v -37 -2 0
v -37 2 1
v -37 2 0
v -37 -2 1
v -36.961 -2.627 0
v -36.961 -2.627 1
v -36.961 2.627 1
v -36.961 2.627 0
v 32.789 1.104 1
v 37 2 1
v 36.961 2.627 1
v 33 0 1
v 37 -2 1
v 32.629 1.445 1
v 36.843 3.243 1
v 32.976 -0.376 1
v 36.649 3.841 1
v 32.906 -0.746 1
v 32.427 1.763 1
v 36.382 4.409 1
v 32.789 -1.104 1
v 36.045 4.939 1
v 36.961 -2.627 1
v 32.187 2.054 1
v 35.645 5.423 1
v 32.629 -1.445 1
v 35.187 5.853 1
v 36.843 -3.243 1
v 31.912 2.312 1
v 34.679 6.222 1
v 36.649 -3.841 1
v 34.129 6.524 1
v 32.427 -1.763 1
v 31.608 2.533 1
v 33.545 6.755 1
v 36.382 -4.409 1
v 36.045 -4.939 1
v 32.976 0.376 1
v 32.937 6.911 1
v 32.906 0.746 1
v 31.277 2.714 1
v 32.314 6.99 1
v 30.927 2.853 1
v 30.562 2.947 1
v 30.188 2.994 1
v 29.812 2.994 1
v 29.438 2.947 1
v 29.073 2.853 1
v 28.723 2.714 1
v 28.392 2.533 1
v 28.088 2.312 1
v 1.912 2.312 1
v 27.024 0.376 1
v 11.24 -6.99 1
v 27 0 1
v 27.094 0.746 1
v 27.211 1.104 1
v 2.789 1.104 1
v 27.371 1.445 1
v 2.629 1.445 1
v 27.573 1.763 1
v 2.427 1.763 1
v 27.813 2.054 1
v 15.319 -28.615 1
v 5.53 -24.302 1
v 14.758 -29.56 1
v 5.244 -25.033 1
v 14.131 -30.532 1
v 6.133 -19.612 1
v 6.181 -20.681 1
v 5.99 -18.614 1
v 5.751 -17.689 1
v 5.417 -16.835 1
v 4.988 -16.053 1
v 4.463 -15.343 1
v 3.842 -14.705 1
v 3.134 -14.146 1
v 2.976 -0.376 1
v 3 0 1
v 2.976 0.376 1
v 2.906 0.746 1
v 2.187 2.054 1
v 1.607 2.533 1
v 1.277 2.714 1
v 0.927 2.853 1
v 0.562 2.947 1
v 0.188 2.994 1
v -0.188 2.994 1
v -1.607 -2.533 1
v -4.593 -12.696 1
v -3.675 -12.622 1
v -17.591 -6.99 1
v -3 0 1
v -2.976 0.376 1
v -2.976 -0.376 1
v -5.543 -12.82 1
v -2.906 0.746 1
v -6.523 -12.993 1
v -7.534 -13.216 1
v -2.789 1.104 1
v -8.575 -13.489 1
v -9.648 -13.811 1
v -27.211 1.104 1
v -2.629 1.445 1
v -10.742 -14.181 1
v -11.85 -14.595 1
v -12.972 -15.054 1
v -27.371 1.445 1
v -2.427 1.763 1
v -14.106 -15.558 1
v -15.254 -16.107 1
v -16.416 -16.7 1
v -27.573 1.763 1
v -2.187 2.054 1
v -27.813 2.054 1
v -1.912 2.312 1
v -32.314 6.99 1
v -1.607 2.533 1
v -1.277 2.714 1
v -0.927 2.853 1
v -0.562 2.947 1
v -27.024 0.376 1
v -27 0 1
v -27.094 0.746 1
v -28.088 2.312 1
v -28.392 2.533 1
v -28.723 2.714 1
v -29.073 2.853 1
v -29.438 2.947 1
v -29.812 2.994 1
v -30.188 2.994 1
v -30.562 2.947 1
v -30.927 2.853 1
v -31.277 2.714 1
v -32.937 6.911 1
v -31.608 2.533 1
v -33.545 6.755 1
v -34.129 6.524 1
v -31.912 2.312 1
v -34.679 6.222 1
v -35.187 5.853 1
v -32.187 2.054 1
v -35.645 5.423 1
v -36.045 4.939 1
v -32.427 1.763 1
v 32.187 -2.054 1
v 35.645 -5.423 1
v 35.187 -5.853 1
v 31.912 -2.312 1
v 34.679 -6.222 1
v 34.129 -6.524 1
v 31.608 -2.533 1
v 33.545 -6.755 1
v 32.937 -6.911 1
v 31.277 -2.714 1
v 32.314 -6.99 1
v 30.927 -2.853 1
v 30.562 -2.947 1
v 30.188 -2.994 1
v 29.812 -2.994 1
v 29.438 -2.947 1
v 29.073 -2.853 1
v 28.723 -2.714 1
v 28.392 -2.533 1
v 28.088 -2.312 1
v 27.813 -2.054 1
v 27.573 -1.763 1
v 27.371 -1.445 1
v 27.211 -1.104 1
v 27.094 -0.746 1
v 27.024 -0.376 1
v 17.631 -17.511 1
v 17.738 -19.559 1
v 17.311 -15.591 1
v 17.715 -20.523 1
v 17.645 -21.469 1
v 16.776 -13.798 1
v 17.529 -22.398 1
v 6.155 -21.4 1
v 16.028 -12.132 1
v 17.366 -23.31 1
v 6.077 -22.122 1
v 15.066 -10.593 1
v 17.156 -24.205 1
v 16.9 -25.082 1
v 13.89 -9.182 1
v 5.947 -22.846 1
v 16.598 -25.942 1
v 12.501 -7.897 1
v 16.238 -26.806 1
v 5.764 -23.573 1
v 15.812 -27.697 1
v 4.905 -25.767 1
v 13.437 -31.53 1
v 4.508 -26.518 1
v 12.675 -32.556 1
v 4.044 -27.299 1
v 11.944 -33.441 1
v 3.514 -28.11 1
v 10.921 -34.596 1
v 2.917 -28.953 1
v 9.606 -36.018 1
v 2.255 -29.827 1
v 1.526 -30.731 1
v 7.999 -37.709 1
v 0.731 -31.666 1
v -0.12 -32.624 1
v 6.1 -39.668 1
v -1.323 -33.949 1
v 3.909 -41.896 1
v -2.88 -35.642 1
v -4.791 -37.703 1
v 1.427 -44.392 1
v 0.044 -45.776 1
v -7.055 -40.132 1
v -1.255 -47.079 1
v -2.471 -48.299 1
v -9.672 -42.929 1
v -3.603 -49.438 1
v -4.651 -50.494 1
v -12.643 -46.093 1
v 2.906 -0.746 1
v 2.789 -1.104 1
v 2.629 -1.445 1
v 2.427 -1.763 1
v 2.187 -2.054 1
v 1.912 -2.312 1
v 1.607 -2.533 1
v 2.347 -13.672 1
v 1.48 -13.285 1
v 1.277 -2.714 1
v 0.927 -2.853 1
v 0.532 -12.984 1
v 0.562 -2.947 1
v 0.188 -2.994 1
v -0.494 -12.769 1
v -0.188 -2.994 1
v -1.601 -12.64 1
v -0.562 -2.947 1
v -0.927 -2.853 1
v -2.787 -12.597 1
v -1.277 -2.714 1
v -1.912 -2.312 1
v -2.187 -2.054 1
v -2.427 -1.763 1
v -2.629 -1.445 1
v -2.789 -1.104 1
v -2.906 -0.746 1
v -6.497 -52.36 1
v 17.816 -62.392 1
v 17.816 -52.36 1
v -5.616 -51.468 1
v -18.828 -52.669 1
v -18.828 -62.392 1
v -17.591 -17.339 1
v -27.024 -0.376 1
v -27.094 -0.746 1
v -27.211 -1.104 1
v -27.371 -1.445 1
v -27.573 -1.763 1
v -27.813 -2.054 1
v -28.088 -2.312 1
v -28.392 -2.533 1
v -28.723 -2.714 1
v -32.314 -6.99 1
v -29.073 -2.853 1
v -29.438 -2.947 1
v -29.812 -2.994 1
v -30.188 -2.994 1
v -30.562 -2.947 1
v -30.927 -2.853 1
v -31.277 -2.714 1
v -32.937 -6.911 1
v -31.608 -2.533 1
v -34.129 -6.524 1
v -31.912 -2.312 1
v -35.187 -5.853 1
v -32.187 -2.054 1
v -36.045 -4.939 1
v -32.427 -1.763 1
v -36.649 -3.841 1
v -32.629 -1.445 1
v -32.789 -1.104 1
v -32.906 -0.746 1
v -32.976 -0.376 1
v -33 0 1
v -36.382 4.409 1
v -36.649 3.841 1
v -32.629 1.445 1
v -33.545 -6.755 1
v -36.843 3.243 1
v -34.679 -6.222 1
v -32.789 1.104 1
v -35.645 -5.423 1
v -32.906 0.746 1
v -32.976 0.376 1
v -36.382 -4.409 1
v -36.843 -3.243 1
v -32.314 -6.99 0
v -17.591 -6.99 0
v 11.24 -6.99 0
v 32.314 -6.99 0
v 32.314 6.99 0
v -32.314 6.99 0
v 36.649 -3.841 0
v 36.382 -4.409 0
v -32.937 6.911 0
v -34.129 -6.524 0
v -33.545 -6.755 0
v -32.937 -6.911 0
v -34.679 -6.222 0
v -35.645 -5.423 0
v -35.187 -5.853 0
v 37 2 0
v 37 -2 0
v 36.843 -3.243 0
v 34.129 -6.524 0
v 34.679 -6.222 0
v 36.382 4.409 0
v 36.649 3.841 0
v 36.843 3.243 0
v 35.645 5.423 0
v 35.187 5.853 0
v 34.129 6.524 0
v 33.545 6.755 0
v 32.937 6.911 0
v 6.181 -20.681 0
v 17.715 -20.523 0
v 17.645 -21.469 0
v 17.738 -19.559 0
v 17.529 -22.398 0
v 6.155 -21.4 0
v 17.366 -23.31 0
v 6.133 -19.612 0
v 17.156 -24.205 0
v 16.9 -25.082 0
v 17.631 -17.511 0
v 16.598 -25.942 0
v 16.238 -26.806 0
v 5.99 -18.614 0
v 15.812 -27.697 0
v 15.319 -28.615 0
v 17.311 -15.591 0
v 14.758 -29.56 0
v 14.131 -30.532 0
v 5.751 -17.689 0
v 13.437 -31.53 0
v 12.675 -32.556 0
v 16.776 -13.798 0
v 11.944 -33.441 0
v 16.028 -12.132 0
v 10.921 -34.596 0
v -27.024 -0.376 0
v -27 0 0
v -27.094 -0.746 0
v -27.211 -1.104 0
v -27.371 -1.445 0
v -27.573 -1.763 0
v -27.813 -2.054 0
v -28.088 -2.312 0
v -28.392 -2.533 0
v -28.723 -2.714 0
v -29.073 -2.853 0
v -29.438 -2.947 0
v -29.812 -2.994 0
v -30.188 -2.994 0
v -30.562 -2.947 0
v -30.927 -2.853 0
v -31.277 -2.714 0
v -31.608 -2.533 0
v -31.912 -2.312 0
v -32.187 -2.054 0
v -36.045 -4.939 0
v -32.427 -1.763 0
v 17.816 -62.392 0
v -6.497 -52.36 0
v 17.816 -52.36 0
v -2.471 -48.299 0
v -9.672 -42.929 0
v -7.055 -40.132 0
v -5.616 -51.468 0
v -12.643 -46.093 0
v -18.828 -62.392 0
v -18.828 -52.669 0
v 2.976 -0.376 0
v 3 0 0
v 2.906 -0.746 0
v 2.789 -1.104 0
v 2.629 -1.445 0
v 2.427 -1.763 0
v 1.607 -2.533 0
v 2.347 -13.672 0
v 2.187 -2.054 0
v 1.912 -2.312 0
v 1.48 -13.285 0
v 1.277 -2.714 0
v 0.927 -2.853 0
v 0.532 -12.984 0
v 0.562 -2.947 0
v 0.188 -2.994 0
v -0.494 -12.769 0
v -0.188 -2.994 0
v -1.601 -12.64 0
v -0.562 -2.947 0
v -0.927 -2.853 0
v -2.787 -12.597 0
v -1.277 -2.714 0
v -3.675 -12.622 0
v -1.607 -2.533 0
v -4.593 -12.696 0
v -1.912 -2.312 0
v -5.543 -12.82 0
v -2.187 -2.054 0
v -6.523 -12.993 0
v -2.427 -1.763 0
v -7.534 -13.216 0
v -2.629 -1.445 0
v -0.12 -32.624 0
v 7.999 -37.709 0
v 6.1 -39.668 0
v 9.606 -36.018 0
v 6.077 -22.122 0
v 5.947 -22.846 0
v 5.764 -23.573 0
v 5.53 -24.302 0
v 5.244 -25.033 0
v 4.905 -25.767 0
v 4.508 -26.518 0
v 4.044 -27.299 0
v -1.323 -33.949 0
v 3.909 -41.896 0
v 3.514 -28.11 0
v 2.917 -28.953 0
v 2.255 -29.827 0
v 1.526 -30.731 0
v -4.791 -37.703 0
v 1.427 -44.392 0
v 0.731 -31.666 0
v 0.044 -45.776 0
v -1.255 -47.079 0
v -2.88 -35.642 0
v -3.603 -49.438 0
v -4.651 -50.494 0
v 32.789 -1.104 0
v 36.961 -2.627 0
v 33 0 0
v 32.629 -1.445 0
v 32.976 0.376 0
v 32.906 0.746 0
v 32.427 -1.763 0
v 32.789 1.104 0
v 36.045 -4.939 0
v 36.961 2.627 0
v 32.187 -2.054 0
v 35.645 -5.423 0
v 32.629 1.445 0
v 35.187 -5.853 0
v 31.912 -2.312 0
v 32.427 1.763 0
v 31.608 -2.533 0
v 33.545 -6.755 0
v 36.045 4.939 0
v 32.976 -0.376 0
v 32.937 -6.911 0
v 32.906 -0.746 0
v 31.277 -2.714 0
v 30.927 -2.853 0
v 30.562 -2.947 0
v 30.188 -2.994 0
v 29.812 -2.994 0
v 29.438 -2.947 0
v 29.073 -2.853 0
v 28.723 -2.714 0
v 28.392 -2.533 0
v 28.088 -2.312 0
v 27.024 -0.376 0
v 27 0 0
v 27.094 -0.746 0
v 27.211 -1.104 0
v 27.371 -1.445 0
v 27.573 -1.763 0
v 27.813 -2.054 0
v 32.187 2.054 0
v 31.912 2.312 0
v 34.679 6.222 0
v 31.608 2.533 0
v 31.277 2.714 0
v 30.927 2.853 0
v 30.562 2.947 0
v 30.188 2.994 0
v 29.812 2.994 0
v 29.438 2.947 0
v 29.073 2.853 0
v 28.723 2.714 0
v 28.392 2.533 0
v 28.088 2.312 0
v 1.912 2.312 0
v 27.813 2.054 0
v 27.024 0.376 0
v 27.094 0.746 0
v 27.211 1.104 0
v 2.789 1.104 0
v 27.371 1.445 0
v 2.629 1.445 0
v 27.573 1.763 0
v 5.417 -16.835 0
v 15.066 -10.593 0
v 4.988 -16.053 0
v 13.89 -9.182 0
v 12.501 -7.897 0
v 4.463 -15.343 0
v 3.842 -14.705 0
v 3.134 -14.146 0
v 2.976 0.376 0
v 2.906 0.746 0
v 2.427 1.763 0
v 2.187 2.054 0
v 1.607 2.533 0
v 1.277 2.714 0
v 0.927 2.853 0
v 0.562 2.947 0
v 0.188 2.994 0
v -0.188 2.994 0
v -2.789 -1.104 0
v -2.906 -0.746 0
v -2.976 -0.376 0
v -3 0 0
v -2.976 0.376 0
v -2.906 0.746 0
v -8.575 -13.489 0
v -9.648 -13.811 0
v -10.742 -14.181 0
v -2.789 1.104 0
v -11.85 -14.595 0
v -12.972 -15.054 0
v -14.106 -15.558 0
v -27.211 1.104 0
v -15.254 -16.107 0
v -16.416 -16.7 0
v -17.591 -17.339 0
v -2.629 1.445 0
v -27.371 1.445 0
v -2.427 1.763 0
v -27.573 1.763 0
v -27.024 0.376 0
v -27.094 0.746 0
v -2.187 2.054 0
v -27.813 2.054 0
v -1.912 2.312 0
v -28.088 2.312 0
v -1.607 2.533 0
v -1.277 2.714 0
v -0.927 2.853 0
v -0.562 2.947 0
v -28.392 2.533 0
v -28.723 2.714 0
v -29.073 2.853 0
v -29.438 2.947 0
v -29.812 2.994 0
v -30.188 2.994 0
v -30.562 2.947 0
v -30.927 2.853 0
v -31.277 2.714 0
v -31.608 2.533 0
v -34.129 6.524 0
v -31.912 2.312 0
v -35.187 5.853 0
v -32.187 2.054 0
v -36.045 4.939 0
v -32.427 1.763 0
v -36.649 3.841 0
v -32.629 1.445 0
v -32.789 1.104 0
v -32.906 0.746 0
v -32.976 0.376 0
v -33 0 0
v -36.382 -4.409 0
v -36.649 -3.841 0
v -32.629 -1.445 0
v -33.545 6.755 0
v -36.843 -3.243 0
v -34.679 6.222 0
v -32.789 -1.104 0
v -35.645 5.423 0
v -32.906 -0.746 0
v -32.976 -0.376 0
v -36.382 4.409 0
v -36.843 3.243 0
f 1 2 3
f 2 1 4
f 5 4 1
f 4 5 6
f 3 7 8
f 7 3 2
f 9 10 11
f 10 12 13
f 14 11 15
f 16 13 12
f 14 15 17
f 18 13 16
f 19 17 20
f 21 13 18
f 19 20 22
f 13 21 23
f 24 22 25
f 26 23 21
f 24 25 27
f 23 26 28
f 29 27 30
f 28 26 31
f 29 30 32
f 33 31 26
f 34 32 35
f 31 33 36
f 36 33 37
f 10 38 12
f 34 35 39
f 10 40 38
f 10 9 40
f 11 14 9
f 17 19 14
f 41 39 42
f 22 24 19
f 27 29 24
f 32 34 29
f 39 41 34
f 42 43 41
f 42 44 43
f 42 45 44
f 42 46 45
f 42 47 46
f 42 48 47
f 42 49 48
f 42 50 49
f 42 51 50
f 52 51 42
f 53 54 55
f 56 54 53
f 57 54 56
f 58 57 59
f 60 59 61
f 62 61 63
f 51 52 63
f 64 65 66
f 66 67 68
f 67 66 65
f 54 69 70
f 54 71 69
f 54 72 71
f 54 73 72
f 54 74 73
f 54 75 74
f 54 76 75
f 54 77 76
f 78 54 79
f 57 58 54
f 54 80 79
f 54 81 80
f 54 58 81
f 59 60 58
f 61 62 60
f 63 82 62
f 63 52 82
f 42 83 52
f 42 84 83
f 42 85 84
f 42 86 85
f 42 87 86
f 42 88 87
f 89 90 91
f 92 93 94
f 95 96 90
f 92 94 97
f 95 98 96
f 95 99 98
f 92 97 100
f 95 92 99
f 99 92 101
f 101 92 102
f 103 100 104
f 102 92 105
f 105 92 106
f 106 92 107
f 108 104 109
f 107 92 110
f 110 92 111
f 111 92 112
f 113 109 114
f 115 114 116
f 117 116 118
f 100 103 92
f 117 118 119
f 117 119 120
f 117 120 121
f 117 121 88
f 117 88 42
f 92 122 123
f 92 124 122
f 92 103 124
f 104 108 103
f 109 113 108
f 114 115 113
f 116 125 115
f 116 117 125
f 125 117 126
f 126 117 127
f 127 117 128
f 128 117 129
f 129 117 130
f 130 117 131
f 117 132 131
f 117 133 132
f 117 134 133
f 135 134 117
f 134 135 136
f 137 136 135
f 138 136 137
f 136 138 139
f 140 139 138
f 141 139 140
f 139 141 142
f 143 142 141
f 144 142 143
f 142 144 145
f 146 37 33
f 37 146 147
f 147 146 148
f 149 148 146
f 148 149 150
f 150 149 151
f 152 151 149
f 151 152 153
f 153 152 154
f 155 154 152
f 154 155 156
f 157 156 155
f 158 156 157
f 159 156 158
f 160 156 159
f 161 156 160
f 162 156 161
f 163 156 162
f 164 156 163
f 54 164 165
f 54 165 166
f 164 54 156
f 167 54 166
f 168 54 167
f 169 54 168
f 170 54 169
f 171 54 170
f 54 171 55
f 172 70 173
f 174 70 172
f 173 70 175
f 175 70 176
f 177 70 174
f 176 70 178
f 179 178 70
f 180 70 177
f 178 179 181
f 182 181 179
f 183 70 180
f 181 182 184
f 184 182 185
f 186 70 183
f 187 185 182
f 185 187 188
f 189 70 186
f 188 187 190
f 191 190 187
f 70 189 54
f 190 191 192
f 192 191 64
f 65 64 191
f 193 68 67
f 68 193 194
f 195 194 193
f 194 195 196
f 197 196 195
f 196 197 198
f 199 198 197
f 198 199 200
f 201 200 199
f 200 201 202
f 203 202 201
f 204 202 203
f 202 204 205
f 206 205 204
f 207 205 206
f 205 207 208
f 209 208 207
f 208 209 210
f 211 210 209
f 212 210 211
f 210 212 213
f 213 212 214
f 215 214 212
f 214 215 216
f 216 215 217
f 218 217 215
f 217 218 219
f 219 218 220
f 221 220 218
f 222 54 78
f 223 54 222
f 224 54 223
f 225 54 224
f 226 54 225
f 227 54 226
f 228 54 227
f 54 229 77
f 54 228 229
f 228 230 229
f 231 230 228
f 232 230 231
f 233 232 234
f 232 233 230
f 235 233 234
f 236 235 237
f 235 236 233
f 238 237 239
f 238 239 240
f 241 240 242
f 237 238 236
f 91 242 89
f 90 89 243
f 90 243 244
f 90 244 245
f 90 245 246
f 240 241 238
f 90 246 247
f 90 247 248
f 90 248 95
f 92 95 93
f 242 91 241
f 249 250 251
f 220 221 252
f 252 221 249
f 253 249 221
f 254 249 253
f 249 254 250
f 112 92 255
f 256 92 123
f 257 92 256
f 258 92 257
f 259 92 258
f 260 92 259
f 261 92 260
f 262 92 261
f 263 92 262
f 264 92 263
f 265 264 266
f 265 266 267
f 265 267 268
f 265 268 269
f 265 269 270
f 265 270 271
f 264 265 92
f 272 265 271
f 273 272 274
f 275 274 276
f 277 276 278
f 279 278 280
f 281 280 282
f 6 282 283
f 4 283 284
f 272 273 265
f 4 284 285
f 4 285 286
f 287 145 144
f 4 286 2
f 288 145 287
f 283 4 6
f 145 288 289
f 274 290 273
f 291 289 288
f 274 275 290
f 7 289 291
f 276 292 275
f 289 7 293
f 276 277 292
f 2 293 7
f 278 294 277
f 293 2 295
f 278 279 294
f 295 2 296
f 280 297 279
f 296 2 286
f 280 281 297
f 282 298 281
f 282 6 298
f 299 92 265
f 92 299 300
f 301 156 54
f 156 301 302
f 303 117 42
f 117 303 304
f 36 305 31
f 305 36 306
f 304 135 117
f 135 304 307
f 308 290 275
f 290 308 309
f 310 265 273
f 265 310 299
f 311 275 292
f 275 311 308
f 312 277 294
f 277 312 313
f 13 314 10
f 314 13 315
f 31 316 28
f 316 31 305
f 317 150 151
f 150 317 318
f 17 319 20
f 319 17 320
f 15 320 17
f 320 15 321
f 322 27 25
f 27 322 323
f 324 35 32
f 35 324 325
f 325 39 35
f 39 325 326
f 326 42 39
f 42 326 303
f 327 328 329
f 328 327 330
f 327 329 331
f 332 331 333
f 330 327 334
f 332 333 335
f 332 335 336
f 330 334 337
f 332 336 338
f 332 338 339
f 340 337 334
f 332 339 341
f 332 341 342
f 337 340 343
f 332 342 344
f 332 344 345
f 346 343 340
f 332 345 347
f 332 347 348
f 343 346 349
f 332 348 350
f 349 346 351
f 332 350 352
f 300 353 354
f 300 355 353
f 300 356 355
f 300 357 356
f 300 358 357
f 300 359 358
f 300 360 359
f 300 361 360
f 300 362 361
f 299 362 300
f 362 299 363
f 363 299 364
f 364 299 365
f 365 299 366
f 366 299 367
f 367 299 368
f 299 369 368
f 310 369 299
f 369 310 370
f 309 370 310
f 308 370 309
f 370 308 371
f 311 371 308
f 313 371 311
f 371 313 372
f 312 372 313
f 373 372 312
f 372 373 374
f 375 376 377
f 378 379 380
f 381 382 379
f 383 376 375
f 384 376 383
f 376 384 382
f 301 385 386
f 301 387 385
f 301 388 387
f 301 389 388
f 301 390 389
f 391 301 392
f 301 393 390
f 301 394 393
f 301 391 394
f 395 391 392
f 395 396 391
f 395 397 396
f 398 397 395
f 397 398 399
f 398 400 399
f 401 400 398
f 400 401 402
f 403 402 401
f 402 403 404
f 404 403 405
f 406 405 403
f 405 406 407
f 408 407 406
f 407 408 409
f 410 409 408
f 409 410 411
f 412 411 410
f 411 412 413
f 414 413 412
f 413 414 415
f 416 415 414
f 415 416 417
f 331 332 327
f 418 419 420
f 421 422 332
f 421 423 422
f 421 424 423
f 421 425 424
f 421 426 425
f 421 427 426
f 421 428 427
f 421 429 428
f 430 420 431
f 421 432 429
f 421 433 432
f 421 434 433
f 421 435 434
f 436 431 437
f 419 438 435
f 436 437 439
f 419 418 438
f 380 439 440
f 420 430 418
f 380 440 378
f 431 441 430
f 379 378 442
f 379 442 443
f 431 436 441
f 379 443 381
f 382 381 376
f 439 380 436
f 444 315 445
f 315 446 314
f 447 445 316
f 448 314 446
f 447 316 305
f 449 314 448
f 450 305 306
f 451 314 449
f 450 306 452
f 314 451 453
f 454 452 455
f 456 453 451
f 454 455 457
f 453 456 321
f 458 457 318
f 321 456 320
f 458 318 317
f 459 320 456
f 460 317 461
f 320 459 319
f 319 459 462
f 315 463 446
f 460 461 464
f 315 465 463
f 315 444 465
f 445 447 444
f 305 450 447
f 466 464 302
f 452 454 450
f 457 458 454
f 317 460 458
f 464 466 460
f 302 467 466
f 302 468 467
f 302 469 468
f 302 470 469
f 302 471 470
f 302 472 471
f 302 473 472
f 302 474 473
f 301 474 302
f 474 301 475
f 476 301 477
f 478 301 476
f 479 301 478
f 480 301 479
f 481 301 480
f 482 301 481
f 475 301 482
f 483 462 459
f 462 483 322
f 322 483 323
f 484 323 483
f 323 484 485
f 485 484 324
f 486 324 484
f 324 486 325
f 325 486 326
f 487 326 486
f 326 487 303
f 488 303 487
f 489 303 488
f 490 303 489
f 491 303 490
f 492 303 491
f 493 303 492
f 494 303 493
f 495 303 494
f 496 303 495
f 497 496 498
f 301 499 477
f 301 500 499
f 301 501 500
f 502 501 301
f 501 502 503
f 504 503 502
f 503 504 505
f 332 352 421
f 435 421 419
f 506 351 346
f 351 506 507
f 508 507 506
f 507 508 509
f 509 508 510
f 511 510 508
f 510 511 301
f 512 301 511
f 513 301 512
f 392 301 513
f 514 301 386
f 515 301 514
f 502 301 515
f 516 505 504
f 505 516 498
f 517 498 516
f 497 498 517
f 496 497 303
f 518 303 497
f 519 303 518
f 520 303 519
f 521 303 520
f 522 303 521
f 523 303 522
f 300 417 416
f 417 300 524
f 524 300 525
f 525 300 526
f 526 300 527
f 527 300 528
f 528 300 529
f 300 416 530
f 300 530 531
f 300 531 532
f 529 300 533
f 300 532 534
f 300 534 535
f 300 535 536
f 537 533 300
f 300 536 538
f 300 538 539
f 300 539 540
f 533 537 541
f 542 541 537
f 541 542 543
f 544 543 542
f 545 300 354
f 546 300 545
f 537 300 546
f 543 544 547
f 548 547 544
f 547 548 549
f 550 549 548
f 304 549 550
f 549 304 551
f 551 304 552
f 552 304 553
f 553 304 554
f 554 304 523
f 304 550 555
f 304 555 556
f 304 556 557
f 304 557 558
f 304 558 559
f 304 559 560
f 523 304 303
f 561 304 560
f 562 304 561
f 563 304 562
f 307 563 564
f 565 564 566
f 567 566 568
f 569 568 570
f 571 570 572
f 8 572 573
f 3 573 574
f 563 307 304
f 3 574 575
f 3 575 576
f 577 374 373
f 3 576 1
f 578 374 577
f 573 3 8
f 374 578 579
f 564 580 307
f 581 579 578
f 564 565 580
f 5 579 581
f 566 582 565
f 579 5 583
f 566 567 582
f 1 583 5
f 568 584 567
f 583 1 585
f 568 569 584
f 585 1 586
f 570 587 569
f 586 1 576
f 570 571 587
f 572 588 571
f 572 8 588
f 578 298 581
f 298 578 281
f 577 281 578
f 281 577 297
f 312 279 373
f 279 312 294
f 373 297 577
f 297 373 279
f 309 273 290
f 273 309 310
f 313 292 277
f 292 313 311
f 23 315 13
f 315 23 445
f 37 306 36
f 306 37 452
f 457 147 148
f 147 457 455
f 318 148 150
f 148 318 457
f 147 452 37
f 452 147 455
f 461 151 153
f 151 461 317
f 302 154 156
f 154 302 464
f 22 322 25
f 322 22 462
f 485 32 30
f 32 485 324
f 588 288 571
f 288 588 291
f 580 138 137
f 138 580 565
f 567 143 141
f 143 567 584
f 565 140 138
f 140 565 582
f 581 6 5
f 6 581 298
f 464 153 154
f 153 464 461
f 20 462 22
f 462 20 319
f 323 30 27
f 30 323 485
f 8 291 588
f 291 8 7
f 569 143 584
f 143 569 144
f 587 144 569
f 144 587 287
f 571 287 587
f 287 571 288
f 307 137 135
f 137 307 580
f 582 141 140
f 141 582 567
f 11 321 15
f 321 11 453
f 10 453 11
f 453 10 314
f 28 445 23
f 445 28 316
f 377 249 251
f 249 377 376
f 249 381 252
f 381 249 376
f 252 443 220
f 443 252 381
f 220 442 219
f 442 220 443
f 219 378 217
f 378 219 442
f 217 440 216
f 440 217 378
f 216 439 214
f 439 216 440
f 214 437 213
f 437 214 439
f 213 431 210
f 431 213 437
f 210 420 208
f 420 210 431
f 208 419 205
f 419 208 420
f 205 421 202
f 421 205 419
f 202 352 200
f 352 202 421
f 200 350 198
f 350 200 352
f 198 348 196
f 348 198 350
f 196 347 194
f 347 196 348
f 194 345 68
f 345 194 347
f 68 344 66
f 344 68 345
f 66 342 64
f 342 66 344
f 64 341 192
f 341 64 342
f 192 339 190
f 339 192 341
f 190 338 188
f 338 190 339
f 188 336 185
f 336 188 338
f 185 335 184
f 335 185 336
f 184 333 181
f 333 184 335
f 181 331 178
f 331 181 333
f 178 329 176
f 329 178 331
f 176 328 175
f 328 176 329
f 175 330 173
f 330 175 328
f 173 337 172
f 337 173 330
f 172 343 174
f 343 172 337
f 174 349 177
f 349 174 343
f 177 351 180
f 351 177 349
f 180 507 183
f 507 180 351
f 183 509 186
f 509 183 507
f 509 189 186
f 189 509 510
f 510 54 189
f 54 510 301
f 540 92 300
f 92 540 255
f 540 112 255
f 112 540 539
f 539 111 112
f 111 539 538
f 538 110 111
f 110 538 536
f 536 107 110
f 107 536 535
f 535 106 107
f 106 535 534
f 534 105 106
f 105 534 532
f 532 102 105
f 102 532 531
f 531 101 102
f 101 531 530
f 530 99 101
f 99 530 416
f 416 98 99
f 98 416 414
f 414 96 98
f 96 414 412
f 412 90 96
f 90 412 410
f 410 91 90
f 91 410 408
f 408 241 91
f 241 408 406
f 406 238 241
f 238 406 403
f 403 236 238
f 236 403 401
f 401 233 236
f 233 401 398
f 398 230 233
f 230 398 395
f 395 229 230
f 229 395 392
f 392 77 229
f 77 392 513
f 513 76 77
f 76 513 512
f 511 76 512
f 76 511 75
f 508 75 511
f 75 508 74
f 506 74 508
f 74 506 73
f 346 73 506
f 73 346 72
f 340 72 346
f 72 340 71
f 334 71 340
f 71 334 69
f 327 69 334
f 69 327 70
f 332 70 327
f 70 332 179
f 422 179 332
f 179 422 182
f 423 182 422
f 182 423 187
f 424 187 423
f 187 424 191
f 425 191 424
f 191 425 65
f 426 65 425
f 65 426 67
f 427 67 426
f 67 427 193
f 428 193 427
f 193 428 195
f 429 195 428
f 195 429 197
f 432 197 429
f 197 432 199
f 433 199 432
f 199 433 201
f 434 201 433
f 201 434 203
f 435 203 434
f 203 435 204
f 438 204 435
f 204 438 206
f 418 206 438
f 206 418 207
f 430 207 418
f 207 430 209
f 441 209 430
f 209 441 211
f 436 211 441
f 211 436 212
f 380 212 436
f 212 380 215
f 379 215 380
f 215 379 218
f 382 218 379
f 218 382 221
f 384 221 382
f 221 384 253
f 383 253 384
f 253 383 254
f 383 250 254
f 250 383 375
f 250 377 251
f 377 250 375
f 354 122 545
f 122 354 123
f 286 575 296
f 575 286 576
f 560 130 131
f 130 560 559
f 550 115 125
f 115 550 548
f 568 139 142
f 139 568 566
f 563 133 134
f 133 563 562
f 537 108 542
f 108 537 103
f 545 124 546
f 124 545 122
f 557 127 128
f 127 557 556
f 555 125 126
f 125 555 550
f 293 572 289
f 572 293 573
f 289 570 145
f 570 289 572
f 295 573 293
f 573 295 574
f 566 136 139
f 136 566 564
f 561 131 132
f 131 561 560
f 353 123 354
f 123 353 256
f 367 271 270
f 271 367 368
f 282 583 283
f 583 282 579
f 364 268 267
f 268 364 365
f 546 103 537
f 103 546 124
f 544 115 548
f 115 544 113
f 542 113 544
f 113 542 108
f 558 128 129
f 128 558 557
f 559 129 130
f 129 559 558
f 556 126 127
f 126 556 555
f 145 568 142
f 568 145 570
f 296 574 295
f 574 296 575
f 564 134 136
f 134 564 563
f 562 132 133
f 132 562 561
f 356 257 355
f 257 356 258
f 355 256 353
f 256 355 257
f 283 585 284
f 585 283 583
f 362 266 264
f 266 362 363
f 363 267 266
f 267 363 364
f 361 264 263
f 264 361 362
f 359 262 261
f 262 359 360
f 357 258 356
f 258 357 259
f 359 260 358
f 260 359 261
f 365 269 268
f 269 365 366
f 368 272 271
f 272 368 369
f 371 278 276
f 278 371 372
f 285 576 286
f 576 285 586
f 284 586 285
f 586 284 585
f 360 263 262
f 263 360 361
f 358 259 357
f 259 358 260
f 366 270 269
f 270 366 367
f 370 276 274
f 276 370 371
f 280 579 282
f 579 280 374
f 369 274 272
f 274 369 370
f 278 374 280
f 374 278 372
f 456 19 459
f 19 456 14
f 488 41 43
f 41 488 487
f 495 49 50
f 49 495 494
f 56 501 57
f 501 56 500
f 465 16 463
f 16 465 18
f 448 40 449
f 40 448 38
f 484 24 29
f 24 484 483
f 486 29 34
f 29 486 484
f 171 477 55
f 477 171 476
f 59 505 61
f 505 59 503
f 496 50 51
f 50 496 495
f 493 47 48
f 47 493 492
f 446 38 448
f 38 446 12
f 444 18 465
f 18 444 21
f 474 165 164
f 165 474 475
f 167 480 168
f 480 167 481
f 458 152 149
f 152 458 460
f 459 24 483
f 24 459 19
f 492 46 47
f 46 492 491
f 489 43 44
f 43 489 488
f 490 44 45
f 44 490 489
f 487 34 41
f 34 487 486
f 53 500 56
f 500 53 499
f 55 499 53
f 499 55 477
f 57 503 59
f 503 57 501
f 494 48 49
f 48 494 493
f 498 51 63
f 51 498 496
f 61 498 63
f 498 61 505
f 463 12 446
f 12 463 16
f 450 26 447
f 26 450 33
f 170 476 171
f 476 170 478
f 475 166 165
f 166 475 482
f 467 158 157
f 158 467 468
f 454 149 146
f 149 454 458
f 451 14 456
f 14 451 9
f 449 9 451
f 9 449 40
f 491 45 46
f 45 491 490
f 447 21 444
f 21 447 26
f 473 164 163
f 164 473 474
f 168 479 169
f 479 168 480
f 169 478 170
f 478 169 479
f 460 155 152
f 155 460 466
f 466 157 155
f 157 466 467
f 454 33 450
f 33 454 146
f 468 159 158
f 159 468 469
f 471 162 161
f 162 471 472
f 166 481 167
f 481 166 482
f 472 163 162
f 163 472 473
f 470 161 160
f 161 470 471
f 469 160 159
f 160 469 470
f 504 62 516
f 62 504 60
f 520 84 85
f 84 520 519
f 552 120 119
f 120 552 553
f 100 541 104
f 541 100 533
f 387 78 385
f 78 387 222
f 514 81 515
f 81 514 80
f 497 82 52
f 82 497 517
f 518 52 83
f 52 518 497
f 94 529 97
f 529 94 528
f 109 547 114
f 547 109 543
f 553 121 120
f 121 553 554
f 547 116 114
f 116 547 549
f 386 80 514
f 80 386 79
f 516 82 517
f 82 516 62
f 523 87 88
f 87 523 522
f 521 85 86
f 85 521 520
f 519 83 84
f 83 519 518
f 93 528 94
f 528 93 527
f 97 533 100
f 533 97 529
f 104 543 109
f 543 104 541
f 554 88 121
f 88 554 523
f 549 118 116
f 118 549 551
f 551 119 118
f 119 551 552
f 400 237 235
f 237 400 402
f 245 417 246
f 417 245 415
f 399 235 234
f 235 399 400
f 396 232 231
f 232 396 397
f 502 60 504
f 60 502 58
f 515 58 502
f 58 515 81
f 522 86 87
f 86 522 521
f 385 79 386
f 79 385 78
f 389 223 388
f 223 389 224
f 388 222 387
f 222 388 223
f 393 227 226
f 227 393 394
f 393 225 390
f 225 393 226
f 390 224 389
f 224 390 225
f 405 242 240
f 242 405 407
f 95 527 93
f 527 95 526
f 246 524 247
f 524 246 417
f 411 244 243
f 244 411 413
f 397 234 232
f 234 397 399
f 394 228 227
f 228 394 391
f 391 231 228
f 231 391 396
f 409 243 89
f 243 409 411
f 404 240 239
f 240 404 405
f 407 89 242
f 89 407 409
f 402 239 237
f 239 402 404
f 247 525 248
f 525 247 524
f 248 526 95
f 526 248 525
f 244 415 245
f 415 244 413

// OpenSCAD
$fn = 50;


difference() {
	union() {
		translate(v = [0, 0, 0]) {
			rotate(a = [0, 0, 0]) {
				hull() {
					translate(v = [-32.0000000000, 2.0000000000, 0]) {
						rotate(a = [0, 0, 0]) {
							translate(v = [0, 0, 0]) {
								rotate(a = [0, 0, 0]) {
									cylinder(h = 1, r = 5);
								}
							}
						}
					}
					translate(v = [32.0000000000, 2.0000000000, 0]) {
						rotate(a = [0, 0, 0]) {
							translate(v = [0, 0, 0]) {
								rotate(a = [0, 0, 0]) {
									cylinder(h = 1, r = 5);
								}
							}
						}
					}
					translate(v = [-32.0000000000, -2.0000000000, 0]) {
						rotate(a = [0, 0, 0]) {
							translate(v = [0, 0, 0]) {
								rotate(a = [0, 0, 0]) {
									cylinder(h = 1, r = 5);
								}
							}
						}
					}
					translate(v = [32.0000000000, -2.0000000000, 0]) {
						rotate(a = [0, 0, 0]) {
							translate(v = [0, 0, 0]) {
								rotate(a = [0, 0, 0]) {
									cylinder(h = 1, r = 5);
								}
							}
						}
					}
				}
			}
		}
		translate(v = [0, -5, 0]) {
			rotate(a = [0, 0, 0]) {
				linear_extrude(height = 1) {
					text(font = "DejaVu Sans Mono:style=Bold", halign = "center", size = 57.0000000000, text = "2", valign = "top");
				}
			}
		}
	}
	union() {
		translate(v = [-30.0000000000, 0.0000000000, -125.0000000000]) {
			rotate(a = [0, 0, 0]) {
				cylinder(h = 250, r = 3.0000000000);
			}
		}
		translate(v = [30.0000000000, 0.0000000000, -125.0000000000]) {
			rotate(a = [0, 0, 0]) {
				cylinder(h = 250, r = 3.0000000000);
			}
		}
		translate(v = [30.0000000000, 0.0000000000, -125.0000000000]) {
			rotate(a = [0, 0, 0]) {
				cylinder(h = 250, r = 3.0000000000);
			}
		}
		translate(v = [0, 0, -125.0000000000]) {
			rotate(a = [0, 0, 0]) {
				cylinder(h = 250, r = 3.0000000000);
			}
		}
	}
}
